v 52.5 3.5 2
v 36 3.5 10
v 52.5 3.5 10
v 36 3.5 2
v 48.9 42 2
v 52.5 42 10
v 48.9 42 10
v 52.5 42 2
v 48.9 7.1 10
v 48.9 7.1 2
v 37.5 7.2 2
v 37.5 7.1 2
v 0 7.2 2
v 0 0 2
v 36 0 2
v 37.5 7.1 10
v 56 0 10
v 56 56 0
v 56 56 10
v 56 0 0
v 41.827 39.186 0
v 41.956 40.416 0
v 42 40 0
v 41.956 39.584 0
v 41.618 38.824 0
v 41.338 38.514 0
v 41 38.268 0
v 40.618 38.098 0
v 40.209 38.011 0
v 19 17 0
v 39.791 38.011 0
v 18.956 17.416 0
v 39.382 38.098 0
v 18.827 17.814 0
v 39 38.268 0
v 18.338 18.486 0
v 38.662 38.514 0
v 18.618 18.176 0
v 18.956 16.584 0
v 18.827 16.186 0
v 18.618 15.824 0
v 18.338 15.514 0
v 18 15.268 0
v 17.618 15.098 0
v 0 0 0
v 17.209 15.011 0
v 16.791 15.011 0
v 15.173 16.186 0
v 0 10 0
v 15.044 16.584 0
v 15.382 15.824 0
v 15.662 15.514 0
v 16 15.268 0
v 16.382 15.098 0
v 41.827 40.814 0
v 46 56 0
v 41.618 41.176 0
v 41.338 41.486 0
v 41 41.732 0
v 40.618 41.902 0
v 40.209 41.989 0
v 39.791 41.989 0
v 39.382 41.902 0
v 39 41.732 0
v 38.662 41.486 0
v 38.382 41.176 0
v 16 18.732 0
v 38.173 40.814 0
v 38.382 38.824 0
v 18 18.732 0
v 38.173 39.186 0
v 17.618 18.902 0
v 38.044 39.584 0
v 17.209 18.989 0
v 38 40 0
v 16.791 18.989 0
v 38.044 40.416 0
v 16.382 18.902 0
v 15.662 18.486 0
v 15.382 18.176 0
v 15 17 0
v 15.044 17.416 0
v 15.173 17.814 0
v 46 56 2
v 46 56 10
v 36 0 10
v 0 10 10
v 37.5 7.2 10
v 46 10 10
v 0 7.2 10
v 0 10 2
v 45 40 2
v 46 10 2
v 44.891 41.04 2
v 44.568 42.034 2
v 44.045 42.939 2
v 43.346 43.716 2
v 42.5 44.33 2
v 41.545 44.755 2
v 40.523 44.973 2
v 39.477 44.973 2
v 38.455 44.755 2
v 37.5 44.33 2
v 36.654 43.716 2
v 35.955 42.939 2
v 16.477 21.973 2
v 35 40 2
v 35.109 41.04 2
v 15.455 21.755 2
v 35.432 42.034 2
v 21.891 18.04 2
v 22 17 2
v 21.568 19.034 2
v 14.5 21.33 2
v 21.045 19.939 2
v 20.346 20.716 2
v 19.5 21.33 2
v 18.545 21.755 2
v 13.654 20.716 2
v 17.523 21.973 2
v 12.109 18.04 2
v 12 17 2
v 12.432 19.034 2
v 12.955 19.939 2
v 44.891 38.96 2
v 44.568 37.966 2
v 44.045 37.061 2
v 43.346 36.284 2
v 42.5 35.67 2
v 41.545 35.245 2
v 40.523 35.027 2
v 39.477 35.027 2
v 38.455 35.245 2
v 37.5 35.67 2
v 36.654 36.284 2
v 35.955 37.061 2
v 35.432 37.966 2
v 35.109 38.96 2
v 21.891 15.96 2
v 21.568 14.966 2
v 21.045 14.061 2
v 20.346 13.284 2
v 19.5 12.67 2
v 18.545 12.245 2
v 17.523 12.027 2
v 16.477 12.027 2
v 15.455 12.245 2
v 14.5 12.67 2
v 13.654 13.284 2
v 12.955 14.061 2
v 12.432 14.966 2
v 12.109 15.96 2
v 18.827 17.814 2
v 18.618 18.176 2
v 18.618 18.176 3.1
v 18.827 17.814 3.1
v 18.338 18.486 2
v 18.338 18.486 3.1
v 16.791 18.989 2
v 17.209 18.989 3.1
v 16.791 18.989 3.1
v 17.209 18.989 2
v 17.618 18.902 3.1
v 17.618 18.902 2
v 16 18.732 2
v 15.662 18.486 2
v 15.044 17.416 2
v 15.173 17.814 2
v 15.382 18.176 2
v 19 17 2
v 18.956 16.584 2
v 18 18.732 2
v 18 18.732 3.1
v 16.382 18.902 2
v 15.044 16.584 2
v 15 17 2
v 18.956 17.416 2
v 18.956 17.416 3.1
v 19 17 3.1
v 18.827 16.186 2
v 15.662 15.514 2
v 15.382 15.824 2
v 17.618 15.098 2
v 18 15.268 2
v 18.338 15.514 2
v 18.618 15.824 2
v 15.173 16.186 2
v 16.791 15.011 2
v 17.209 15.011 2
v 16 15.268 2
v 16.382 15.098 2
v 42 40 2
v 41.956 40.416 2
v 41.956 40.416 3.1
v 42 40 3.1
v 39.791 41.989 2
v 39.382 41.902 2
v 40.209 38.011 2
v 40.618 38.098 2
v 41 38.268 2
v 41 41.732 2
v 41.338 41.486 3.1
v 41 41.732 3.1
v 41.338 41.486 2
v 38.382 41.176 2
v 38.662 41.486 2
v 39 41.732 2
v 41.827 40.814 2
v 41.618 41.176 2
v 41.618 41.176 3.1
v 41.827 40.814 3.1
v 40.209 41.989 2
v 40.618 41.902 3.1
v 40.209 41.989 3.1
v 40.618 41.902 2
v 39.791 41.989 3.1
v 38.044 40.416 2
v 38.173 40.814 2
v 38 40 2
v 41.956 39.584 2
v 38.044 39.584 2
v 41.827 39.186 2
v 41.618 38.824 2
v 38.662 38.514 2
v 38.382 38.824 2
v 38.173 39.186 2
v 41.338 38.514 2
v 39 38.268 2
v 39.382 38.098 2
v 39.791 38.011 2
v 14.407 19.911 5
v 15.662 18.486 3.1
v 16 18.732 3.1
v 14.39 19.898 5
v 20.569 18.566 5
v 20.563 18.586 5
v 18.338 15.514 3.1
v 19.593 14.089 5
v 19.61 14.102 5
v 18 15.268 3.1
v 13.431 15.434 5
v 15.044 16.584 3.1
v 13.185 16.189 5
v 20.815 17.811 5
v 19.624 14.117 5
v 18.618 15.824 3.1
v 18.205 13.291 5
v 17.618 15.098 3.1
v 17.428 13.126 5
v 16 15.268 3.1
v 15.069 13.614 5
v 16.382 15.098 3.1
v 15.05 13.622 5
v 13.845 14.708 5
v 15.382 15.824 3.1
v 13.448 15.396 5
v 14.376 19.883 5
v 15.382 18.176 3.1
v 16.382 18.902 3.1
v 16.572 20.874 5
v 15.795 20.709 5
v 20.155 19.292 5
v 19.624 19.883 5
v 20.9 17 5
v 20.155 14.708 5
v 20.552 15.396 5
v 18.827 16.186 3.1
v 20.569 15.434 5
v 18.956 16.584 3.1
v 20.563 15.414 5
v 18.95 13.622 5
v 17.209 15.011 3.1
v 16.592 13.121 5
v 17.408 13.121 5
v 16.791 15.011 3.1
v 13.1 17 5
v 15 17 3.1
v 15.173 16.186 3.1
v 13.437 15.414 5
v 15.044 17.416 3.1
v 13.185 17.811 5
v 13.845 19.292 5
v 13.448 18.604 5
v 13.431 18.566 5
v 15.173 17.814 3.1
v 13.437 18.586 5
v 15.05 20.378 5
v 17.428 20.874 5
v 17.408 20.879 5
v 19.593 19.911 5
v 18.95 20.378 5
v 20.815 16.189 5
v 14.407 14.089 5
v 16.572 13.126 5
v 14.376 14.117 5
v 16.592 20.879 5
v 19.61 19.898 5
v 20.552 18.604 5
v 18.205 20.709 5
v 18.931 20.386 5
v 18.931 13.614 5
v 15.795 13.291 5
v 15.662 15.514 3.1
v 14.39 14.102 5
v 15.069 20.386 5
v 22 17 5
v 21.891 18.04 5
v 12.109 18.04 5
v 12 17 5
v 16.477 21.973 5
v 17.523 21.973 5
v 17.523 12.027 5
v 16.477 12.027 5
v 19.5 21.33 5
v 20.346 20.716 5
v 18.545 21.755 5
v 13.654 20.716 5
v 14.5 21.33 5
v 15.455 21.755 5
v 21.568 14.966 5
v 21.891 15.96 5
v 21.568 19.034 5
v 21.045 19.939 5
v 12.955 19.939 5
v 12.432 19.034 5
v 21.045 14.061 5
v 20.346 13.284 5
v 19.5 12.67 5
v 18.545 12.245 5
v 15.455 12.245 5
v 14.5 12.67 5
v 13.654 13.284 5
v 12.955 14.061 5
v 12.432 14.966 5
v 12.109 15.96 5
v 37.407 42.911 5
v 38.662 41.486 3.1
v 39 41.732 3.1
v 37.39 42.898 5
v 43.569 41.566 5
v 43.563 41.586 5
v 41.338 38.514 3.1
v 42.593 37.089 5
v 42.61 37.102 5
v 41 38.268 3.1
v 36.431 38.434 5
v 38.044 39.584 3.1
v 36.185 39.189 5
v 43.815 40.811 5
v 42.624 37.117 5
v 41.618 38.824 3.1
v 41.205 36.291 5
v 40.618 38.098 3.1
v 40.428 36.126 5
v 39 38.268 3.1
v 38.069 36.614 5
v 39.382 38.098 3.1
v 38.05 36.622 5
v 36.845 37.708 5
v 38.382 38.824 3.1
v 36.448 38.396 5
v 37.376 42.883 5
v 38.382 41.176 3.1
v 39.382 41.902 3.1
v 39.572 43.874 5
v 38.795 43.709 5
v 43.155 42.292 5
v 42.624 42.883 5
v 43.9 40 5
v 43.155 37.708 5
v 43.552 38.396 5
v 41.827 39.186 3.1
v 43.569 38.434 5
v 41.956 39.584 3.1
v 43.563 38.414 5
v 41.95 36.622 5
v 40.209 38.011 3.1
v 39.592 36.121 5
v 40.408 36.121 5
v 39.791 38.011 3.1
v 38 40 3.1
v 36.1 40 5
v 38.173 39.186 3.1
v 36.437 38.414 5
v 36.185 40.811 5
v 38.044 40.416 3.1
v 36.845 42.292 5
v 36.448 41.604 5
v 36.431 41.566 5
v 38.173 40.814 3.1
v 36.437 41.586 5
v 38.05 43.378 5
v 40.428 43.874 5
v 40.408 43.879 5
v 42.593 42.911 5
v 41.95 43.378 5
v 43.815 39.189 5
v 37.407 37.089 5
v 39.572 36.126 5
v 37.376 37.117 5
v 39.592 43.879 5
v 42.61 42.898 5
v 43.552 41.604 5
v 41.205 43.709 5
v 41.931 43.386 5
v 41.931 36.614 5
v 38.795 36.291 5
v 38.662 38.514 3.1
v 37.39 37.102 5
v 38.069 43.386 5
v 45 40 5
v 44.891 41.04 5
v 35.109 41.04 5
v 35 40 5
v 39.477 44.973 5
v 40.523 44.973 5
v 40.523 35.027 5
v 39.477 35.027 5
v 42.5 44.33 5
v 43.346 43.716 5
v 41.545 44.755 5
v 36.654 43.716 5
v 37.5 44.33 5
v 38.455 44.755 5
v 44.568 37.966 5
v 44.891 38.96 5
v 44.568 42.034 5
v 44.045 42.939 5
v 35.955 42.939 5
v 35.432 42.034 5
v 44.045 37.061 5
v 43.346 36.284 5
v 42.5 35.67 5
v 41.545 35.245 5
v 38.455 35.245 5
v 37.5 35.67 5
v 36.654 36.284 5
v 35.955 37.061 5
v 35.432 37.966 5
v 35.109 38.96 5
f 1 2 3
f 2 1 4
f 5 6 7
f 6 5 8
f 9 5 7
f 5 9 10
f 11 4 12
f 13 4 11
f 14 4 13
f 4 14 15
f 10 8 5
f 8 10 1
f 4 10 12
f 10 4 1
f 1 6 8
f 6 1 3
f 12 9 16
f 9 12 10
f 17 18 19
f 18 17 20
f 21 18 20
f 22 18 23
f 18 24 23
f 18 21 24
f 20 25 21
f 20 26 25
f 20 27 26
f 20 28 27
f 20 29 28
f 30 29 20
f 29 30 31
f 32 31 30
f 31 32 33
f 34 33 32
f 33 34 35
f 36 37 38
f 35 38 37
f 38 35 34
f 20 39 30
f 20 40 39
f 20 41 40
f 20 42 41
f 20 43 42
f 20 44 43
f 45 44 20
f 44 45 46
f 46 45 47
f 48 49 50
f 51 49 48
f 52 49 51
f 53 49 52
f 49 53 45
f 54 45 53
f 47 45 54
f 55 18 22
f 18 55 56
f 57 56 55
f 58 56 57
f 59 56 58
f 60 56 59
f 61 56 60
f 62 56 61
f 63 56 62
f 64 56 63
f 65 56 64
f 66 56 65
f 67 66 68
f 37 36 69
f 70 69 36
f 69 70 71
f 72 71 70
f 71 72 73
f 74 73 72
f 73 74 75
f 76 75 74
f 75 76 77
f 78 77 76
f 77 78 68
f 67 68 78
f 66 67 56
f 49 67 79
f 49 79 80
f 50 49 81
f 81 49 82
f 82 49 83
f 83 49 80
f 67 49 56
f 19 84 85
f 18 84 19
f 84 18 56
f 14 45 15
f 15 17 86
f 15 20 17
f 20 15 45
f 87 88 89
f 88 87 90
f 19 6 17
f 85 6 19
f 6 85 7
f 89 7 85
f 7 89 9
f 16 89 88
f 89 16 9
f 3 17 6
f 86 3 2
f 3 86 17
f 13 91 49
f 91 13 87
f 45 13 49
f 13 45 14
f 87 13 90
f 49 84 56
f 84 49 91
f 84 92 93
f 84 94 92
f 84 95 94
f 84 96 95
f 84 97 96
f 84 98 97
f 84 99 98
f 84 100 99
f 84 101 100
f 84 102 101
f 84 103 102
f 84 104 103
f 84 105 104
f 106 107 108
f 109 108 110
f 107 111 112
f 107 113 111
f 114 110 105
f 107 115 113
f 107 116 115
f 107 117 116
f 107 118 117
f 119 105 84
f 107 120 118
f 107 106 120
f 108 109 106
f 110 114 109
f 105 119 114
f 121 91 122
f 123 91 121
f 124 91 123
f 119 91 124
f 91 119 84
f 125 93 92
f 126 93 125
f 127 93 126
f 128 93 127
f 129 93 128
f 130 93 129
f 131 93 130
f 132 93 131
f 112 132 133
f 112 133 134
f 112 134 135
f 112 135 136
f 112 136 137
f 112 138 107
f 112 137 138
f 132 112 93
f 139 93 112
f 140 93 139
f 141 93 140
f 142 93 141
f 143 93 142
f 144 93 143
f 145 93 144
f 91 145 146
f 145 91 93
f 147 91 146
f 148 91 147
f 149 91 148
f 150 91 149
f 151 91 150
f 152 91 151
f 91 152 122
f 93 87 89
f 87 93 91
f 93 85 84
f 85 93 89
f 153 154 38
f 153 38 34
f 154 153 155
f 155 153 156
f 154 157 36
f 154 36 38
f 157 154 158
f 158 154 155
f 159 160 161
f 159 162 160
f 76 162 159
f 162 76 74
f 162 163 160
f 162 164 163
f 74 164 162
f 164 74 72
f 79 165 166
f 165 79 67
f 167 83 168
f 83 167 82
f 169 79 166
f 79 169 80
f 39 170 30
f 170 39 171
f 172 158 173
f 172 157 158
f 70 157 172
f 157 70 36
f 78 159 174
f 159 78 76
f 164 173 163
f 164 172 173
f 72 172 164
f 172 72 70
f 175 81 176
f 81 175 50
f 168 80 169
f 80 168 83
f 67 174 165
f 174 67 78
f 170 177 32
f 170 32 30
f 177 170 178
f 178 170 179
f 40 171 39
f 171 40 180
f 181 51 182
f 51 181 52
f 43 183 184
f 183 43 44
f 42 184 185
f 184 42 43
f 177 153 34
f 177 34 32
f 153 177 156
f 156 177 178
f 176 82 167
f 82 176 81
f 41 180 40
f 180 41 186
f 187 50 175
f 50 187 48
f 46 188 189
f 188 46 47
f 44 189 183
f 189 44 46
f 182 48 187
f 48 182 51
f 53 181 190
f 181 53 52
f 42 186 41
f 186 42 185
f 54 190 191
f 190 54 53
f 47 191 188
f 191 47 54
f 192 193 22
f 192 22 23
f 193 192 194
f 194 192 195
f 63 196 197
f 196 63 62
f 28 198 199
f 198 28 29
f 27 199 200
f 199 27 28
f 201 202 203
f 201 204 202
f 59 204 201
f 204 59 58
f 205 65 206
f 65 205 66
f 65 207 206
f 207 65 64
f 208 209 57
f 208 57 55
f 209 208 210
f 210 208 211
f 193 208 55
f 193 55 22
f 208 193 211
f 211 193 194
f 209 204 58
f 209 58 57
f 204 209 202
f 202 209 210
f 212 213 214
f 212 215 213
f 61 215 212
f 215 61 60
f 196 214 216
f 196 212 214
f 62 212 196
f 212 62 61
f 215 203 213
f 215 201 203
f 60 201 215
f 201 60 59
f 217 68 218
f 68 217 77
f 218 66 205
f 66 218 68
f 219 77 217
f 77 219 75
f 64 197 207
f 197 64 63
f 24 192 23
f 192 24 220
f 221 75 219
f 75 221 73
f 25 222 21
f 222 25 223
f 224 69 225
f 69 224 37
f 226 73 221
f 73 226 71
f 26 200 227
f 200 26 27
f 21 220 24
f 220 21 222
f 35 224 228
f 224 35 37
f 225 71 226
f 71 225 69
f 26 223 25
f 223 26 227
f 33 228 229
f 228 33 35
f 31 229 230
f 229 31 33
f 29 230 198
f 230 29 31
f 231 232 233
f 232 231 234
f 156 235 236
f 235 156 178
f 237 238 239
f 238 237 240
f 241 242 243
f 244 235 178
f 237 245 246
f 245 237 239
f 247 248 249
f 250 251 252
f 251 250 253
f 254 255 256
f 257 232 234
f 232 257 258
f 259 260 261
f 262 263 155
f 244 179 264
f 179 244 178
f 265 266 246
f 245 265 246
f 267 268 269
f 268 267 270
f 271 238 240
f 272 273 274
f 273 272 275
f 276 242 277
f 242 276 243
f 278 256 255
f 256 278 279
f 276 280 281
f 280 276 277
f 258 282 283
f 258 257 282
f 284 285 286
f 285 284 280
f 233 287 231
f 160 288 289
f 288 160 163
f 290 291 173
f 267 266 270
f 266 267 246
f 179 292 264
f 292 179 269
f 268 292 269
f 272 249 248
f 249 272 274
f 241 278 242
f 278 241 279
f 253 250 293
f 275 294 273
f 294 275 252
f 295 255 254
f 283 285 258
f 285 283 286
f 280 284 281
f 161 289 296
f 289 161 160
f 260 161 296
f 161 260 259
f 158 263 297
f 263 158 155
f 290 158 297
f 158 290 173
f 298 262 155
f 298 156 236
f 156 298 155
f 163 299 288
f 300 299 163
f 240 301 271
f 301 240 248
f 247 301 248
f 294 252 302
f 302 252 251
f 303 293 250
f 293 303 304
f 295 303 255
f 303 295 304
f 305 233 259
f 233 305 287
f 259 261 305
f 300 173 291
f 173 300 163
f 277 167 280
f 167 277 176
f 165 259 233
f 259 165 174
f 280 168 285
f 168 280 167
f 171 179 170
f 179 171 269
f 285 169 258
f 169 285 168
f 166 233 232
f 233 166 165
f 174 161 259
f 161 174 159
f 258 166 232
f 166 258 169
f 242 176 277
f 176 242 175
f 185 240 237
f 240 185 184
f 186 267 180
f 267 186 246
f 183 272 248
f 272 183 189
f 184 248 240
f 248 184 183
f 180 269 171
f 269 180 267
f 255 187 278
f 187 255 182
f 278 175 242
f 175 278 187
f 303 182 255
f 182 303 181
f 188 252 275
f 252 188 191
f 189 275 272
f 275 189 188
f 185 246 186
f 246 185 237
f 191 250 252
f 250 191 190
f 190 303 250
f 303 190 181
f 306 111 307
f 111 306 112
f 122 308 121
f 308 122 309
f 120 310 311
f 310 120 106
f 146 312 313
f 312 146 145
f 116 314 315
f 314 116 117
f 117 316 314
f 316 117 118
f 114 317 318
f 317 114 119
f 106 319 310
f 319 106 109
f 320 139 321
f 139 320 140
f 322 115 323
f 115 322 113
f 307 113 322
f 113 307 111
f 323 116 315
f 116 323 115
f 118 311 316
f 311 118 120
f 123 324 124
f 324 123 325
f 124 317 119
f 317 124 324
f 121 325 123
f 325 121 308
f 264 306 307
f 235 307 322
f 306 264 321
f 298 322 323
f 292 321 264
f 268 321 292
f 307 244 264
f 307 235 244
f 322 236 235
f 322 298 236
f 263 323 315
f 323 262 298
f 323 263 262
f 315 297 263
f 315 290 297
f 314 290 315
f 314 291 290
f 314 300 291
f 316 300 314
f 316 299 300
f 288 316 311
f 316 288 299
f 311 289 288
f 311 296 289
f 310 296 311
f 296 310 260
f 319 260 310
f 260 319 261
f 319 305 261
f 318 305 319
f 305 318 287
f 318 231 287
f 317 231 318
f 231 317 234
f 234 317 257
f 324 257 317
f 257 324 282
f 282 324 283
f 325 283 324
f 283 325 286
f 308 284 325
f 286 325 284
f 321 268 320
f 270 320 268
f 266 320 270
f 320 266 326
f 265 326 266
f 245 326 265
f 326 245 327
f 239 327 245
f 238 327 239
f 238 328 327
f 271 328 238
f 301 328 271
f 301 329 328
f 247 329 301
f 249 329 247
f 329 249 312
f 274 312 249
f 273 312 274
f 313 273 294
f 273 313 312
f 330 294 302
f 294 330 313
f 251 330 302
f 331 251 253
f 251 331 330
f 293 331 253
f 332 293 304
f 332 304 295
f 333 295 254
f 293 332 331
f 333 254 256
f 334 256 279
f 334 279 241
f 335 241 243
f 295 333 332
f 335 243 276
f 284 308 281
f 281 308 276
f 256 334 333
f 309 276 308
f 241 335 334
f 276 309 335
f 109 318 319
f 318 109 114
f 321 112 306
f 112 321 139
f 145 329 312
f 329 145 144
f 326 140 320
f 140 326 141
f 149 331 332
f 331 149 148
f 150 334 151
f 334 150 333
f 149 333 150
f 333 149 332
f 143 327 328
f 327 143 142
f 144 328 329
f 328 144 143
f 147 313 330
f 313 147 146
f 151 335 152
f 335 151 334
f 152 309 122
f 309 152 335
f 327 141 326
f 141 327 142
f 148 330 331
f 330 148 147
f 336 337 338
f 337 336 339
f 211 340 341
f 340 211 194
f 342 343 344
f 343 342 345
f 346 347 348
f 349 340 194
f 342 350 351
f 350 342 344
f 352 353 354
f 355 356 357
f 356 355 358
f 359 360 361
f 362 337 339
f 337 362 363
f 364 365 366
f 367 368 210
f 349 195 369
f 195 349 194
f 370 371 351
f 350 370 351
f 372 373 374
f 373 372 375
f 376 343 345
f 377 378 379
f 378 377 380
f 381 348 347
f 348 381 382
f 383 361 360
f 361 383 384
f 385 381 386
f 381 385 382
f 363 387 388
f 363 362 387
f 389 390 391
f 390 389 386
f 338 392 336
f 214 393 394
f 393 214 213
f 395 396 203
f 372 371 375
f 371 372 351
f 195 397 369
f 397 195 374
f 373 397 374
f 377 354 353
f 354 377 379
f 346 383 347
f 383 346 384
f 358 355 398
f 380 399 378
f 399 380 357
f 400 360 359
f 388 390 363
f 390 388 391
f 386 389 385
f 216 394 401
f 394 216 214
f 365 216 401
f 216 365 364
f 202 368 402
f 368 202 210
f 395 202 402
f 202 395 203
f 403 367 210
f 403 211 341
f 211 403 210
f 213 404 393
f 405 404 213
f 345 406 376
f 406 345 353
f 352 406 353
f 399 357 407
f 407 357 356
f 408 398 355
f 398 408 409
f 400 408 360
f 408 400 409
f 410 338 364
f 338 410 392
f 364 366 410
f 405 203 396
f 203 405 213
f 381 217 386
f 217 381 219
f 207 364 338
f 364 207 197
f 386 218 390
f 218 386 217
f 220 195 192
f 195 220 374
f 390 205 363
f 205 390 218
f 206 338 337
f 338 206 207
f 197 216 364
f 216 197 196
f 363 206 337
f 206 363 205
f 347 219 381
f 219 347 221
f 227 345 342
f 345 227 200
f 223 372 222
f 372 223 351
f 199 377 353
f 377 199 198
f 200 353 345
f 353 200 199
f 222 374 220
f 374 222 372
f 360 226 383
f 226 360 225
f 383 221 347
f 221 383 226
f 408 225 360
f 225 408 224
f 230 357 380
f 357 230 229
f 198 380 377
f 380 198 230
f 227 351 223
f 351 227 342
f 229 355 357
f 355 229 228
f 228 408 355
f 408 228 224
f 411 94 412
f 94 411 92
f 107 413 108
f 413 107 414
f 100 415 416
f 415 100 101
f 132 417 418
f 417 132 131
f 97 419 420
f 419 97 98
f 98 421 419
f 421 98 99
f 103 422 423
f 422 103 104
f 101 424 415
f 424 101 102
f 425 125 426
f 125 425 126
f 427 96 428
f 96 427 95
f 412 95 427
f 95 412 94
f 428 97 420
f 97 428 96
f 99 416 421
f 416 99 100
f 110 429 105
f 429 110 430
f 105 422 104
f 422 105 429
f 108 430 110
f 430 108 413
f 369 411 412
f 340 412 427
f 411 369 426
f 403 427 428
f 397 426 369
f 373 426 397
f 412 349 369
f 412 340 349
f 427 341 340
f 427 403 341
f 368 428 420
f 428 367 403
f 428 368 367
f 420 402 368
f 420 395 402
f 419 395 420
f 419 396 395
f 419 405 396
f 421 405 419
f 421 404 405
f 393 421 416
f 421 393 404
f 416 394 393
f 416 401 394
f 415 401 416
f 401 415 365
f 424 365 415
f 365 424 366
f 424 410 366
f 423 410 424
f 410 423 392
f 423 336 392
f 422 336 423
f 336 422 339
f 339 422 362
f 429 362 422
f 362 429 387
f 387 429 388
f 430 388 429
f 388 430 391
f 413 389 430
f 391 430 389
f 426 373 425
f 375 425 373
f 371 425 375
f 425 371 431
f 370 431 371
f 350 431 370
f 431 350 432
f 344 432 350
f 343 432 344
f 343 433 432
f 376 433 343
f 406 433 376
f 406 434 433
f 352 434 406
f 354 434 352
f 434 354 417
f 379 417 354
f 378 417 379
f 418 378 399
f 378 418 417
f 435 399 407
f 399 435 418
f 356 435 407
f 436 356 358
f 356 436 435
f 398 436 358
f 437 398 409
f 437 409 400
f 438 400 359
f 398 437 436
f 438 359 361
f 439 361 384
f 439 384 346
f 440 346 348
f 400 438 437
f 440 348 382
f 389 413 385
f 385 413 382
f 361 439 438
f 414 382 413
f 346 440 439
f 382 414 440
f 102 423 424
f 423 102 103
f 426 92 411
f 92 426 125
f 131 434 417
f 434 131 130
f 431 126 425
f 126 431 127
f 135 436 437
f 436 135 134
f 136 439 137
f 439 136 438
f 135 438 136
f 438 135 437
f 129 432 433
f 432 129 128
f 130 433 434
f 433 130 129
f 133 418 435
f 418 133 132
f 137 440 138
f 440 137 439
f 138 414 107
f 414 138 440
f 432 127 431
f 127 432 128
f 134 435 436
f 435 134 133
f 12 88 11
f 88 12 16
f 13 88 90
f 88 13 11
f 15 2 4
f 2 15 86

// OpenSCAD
// file: height extender - base.scad
$fn = 30;

use <./height extender - base.scad>;
extender(10);
module extender(h) {
    difference() {
        union() {
            linear_extrude(height = h)
            color("grey")
            translate([0, 0, 0])
            base();
        }

        translate([56 - 3.5, 3.5, 2])
        rotate([0, 0, 90])
        recess();

        color("pink")
        translate([-1, 10, 2])
        linear_extrude(height = 10)
        cutout();

        translate([17, 17, -1])
        cylinder(h = 4, r = 2);

        translate([40, 40, -1])
        cylinder(h = 4, r = 2);
    }

    translate([17,17,2])
    screw_hole();

    translate([40,40,2])
    screw_hole();
}

module base() {
    polygon(points=[
                [0, 0],
                [56, 0],
                [56, 56],
                [46, 56],
                [0, 10],
                [0,0]
                ],convexity=10
        );
};

module cutout() {
    polygon(points=[
                [0, 0],
                [47, 0],
                [47, 47],
                [0,0]
                ],convexity=10
        );
};

module recess() {

    w = 38.5;
    t = 3.6;
    h = 10;

    color("red")
    cube([w, t, h]);

    color("pink")
    translate([t, 0, 0])
    rotate([0, 0, 90])
    cube([w, t, h]);
};

module screw_hole() {
    
    difference() {
        cylinder(h = 3, r = 5);
            
        color("red")
        union() {
            translate([0, 0, 1.1])
            cylinder(h = 2, r1 = 2, r2 = 4);
            translate([0, 0, -1])
            cylinder(h = 5, r = 2);
        }   
    }
}
// main file
$fn = 30;

use <height extender - base.scad>;



w = 38.5;
t = 3.6;
h = 10;

difference() {
    extender(10);
    color("green")
    translate([-1, t, 2])
    rotate([0, 0, 0])
    cube([w, t, h]);

    color("red")
    translate([-1, -1, 2])
    cube([37, t+2, 10]);
}
